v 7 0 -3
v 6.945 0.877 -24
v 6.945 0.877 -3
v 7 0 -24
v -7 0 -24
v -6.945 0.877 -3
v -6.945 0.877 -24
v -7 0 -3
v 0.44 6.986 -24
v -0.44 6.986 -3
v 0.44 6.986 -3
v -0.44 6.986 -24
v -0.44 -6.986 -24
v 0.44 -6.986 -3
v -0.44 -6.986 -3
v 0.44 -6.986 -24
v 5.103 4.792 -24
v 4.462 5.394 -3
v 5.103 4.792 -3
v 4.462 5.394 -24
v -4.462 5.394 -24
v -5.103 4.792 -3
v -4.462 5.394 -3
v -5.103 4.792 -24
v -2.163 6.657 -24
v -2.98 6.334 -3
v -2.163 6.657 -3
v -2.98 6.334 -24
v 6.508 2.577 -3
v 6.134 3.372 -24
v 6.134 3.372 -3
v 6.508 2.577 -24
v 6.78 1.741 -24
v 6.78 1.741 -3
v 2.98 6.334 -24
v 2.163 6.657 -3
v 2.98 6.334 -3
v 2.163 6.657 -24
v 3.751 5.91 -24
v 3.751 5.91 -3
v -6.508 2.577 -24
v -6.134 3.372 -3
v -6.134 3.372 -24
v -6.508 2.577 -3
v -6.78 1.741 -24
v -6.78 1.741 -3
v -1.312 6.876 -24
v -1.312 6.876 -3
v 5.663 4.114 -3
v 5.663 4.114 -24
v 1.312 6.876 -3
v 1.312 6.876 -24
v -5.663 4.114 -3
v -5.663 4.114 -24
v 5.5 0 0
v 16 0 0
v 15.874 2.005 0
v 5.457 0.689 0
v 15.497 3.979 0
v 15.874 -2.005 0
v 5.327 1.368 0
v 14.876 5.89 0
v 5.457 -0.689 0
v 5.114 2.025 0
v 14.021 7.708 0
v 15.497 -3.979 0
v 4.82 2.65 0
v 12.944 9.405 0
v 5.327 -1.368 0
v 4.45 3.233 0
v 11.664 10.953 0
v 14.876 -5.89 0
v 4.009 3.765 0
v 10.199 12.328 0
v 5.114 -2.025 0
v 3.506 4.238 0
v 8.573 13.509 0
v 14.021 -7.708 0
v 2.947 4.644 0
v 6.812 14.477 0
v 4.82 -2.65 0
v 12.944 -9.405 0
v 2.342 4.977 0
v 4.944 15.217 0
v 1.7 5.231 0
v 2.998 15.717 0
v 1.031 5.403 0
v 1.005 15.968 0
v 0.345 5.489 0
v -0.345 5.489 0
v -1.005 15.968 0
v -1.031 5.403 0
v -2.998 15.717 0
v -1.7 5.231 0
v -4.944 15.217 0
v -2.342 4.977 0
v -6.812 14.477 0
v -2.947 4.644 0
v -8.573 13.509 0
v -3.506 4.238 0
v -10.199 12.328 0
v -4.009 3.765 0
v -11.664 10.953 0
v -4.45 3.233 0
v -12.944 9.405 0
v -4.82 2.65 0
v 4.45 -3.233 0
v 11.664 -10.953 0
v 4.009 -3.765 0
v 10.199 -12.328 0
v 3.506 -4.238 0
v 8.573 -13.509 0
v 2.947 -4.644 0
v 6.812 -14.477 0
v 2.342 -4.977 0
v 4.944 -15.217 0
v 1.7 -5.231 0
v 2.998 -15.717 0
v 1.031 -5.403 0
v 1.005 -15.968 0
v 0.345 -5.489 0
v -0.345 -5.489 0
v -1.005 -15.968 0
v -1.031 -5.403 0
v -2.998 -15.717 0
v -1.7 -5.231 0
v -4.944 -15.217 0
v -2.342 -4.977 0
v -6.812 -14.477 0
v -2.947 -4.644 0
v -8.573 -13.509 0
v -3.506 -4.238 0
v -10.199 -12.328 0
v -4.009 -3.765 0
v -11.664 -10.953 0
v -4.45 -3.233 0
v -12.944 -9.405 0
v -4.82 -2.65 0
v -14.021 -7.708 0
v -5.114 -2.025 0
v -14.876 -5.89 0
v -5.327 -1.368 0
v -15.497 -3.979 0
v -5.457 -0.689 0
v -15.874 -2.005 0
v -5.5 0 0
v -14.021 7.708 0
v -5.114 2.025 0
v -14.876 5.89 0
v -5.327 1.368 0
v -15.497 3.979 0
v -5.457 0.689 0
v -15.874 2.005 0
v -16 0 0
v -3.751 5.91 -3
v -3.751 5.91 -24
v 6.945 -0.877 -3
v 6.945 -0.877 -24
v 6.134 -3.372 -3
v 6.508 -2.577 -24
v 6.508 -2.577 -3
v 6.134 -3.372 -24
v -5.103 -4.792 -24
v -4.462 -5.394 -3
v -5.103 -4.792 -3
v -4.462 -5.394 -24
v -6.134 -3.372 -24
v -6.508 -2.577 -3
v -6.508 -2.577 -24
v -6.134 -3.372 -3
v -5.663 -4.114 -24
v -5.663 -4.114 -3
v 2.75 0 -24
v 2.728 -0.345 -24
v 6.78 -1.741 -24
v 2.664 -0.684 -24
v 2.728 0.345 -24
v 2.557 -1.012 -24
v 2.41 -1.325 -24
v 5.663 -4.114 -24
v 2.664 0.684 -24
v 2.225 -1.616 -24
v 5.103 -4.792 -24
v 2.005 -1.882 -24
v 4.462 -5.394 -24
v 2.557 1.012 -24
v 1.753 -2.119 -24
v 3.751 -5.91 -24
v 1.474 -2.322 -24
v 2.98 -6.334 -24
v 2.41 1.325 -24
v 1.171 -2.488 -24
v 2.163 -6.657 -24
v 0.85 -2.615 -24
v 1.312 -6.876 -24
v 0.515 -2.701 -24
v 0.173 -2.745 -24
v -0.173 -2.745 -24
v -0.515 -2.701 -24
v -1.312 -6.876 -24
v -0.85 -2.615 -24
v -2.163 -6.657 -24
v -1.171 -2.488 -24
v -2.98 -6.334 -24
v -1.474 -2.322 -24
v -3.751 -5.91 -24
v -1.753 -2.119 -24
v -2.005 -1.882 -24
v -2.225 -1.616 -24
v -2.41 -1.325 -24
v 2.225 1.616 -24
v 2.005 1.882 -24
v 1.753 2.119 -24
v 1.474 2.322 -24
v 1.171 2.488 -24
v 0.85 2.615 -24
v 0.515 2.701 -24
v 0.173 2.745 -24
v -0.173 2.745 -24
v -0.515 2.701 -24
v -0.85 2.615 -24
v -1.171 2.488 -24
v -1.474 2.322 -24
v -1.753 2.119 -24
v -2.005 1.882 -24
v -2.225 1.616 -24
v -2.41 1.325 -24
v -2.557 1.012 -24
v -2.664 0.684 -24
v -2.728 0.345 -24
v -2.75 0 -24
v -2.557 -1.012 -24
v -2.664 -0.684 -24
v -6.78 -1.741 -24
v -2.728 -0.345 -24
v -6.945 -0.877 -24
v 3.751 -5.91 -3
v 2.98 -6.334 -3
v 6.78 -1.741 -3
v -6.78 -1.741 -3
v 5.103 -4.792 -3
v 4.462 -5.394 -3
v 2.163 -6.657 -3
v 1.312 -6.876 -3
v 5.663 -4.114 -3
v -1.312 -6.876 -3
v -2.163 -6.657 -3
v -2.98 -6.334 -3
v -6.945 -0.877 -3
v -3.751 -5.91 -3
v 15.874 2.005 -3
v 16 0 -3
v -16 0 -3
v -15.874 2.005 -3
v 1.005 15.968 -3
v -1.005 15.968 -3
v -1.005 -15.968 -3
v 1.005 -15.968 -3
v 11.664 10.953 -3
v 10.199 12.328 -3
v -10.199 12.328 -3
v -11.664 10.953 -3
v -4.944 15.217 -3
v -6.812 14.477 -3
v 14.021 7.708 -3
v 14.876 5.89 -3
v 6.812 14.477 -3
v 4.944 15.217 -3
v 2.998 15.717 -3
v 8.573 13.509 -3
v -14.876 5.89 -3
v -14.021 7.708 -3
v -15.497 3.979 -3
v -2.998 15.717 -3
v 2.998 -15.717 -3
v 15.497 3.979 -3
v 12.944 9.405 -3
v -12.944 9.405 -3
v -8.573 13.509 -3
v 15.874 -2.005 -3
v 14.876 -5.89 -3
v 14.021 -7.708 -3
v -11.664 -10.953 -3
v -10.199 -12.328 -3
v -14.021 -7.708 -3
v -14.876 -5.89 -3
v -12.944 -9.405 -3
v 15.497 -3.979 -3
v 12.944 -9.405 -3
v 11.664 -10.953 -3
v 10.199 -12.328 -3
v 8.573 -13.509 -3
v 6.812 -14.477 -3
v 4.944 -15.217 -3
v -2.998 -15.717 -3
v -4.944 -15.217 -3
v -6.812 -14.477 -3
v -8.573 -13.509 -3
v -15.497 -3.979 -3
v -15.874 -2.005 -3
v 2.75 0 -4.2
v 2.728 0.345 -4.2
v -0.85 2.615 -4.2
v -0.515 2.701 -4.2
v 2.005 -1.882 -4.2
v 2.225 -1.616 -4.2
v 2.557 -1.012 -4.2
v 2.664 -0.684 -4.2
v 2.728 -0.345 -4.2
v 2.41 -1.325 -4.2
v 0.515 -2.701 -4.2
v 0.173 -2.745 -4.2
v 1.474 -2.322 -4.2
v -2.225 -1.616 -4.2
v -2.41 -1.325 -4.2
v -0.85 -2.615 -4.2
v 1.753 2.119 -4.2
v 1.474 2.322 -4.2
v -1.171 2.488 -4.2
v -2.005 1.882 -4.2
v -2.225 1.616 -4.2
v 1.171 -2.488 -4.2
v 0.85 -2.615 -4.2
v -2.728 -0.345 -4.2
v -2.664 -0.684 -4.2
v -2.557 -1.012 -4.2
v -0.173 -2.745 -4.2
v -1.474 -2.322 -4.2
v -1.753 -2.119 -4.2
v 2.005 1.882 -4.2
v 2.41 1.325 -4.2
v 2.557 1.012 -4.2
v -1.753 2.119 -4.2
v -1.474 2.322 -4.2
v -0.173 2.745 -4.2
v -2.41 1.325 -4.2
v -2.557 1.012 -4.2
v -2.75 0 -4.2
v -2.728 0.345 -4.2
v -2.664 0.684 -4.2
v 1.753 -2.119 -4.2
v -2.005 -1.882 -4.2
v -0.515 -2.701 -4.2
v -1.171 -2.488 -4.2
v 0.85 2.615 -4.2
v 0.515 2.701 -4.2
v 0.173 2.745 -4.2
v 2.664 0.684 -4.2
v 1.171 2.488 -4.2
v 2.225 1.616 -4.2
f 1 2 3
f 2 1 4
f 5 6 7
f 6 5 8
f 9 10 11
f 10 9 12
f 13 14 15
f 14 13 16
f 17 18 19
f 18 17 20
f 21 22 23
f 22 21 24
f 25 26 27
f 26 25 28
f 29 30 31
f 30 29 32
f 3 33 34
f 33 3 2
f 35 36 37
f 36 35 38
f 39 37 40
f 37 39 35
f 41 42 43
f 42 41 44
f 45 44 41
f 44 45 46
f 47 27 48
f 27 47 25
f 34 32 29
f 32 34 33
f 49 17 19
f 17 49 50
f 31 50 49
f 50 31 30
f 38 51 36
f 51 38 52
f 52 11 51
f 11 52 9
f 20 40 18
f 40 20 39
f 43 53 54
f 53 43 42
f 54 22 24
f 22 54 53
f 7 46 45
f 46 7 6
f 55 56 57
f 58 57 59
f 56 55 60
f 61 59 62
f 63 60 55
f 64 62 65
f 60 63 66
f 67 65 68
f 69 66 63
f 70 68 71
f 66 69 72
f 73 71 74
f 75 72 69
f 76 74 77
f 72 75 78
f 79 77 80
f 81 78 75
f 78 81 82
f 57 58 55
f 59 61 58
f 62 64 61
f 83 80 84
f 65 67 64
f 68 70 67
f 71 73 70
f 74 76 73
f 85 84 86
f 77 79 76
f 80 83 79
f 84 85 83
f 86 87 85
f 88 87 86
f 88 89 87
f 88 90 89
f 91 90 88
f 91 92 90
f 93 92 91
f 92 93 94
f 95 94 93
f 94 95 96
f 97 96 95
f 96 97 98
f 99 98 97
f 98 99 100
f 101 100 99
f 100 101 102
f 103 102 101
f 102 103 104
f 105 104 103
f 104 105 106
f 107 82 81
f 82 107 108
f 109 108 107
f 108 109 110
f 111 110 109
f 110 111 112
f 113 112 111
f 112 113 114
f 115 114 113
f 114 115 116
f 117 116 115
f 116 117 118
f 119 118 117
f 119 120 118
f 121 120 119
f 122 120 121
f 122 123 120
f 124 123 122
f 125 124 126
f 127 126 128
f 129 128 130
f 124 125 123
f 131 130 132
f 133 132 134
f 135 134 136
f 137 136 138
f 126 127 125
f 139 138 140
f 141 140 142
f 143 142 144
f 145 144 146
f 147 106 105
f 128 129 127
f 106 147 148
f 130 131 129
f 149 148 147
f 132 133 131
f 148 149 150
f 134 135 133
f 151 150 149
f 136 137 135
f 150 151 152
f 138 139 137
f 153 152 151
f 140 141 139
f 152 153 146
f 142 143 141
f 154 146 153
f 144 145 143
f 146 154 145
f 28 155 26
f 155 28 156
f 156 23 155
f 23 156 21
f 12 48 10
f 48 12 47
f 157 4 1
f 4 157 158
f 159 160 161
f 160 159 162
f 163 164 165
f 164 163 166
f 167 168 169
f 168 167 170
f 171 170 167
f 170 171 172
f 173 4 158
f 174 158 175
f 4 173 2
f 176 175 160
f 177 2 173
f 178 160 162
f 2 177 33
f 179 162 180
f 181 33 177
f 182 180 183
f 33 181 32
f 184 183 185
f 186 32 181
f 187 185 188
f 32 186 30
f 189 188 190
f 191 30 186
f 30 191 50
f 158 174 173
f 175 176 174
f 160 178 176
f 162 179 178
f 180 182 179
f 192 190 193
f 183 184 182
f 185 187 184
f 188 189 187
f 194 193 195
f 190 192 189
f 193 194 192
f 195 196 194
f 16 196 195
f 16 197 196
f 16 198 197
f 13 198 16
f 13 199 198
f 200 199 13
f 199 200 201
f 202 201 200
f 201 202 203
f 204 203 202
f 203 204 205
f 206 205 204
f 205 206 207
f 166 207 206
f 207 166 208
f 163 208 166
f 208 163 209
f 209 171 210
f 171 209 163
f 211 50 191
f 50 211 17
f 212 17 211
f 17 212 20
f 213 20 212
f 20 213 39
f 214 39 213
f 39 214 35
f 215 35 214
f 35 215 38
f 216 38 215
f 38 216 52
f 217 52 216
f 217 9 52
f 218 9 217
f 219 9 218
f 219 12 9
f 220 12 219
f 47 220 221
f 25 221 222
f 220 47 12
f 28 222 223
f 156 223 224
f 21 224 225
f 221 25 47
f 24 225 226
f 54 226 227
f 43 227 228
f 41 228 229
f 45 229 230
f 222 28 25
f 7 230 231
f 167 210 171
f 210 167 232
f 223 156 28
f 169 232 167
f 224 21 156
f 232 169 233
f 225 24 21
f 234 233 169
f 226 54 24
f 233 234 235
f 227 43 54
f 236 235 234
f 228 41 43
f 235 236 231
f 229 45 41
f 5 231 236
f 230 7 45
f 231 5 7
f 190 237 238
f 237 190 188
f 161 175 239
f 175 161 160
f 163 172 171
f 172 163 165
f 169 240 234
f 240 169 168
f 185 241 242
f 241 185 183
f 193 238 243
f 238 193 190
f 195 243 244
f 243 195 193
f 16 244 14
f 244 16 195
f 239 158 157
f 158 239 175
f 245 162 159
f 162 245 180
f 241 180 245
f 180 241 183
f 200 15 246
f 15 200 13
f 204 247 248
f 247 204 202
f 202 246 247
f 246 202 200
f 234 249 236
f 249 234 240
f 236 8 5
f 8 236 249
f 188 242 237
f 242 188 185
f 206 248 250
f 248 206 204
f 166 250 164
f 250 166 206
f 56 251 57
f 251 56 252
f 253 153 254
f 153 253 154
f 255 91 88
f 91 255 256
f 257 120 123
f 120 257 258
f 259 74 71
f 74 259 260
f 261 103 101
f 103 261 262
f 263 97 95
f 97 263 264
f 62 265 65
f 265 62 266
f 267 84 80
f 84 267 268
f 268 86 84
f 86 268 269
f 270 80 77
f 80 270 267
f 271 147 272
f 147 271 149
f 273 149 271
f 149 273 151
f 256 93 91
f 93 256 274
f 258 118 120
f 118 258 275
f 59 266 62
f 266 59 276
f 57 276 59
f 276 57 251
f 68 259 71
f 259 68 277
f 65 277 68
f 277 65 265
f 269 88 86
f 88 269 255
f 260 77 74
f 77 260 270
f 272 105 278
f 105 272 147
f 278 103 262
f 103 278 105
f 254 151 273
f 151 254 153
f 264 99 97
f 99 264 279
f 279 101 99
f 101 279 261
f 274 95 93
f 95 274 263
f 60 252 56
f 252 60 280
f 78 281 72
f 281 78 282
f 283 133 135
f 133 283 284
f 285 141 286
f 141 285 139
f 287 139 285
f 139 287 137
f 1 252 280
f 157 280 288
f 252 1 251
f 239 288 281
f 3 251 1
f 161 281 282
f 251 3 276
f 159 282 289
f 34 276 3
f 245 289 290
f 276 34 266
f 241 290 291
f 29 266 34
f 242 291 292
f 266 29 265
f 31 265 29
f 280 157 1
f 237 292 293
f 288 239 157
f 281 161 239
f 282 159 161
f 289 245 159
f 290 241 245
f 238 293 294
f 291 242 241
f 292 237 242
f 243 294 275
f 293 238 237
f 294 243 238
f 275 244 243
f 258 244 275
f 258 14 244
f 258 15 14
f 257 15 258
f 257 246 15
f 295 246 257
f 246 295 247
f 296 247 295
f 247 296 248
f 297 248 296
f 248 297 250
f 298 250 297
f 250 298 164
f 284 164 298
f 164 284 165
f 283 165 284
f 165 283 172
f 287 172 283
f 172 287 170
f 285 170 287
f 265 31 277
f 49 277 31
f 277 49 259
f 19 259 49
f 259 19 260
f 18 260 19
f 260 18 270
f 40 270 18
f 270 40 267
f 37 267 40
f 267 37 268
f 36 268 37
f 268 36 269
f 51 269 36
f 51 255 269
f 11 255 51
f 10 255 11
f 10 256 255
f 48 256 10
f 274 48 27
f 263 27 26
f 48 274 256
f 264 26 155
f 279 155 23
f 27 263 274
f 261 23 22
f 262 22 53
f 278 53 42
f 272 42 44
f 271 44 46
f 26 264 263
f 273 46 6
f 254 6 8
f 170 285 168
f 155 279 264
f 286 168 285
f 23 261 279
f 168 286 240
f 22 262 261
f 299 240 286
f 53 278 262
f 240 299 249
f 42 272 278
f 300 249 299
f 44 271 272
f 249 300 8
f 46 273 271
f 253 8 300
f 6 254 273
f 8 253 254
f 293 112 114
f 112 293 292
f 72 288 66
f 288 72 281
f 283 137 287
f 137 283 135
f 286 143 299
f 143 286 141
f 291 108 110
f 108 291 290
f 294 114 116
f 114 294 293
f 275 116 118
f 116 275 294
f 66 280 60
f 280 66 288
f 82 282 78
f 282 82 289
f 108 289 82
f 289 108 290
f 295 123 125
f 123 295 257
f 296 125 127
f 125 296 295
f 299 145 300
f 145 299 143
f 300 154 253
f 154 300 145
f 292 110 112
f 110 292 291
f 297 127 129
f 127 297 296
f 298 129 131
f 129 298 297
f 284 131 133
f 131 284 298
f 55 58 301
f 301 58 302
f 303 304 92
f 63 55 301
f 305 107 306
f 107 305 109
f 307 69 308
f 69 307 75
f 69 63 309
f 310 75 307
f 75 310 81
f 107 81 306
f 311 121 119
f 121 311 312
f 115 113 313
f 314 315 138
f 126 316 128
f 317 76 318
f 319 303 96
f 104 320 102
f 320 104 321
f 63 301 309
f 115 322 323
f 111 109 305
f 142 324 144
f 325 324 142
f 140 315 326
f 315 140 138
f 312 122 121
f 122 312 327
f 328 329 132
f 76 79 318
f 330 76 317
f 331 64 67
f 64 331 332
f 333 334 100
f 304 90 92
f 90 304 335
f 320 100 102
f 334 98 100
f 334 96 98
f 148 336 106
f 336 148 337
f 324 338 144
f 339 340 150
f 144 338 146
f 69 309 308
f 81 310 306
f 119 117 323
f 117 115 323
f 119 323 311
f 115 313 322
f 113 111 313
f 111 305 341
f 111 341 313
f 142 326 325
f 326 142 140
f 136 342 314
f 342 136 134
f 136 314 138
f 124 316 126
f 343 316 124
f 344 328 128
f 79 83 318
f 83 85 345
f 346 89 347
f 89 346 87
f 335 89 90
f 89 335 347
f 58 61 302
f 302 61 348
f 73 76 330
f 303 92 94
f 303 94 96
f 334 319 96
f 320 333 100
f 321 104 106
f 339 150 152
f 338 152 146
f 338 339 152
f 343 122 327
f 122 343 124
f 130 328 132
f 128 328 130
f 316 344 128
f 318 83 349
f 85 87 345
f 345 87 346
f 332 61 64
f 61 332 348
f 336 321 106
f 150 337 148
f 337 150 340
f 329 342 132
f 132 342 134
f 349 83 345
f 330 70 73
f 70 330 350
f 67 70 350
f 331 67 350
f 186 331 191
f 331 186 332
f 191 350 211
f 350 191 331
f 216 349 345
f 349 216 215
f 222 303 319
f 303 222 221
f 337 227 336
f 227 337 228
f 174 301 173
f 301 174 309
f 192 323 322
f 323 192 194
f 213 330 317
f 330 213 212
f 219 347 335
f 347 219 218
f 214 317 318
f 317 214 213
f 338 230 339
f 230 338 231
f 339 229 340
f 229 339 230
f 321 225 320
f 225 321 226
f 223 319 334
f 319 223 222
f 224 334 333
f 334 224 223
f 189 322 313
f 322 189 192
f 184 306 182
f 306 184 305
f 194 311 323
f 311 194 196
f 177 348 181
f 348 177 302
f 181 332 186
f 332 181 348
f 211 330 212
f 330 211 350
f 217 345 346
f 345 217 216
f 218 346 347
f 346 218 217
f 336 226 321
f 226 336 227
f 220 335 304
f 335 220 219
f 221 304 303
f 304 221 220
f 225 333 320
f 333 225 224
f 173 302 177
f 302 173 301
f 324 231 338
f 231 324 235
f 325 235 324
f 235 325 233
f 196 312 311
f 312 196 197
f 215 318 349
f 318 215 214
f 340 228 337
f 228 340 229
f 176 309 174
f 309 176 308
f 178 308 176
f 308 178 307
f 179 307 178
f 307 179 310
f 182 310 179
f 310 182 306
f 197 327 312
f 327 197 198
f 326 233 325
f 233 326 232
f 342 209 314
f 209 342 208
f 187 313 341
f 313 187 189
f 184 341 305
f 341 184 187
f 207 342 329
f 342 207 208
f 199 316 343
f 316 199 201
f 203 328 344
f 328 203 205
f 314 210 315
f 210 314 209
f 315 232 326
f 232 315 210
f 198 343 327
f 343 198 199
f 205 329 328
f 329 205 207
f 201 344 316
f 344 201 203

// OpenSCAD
$fn = 50;


difference() {
	union() {
		translate(v = [0, 0, -24.0000000000]) {
			cylinder(h = 24, r = 7.0000000000);
		}
		translate(v = [0, 0, -3.0000000000]) {
			cylinder(h = 3, r = 16.0000000000);
		}
	}
	union() {
		translate(v = [0, 0, 0]) {
			rotate(a = [0, 0, 0]) {
				difference() {
					union() {
						#translate(v = [0, 0, -24.0000000000]) {
							cylinder(h = 24, r = 2.2500000000);
						}
						#translate(v = [0, 0, -4.2000000000]) {
							cylinder(h = 4.2000000000, r = 7.0000000000, r1 = 2.7500000000, r2 = 5.5000000000);
						}
						#translate(v = [0, 0, -24.0000000000]) {
							cylinder(h = 24, r = 2.7500000000);
						}
						#translate(v = [0, 0, -24.0000000000]) {
							cylinder(h = 24, r = 2.2500000000);
						}
					}
					union();
				}
			}
		}
	}
}
